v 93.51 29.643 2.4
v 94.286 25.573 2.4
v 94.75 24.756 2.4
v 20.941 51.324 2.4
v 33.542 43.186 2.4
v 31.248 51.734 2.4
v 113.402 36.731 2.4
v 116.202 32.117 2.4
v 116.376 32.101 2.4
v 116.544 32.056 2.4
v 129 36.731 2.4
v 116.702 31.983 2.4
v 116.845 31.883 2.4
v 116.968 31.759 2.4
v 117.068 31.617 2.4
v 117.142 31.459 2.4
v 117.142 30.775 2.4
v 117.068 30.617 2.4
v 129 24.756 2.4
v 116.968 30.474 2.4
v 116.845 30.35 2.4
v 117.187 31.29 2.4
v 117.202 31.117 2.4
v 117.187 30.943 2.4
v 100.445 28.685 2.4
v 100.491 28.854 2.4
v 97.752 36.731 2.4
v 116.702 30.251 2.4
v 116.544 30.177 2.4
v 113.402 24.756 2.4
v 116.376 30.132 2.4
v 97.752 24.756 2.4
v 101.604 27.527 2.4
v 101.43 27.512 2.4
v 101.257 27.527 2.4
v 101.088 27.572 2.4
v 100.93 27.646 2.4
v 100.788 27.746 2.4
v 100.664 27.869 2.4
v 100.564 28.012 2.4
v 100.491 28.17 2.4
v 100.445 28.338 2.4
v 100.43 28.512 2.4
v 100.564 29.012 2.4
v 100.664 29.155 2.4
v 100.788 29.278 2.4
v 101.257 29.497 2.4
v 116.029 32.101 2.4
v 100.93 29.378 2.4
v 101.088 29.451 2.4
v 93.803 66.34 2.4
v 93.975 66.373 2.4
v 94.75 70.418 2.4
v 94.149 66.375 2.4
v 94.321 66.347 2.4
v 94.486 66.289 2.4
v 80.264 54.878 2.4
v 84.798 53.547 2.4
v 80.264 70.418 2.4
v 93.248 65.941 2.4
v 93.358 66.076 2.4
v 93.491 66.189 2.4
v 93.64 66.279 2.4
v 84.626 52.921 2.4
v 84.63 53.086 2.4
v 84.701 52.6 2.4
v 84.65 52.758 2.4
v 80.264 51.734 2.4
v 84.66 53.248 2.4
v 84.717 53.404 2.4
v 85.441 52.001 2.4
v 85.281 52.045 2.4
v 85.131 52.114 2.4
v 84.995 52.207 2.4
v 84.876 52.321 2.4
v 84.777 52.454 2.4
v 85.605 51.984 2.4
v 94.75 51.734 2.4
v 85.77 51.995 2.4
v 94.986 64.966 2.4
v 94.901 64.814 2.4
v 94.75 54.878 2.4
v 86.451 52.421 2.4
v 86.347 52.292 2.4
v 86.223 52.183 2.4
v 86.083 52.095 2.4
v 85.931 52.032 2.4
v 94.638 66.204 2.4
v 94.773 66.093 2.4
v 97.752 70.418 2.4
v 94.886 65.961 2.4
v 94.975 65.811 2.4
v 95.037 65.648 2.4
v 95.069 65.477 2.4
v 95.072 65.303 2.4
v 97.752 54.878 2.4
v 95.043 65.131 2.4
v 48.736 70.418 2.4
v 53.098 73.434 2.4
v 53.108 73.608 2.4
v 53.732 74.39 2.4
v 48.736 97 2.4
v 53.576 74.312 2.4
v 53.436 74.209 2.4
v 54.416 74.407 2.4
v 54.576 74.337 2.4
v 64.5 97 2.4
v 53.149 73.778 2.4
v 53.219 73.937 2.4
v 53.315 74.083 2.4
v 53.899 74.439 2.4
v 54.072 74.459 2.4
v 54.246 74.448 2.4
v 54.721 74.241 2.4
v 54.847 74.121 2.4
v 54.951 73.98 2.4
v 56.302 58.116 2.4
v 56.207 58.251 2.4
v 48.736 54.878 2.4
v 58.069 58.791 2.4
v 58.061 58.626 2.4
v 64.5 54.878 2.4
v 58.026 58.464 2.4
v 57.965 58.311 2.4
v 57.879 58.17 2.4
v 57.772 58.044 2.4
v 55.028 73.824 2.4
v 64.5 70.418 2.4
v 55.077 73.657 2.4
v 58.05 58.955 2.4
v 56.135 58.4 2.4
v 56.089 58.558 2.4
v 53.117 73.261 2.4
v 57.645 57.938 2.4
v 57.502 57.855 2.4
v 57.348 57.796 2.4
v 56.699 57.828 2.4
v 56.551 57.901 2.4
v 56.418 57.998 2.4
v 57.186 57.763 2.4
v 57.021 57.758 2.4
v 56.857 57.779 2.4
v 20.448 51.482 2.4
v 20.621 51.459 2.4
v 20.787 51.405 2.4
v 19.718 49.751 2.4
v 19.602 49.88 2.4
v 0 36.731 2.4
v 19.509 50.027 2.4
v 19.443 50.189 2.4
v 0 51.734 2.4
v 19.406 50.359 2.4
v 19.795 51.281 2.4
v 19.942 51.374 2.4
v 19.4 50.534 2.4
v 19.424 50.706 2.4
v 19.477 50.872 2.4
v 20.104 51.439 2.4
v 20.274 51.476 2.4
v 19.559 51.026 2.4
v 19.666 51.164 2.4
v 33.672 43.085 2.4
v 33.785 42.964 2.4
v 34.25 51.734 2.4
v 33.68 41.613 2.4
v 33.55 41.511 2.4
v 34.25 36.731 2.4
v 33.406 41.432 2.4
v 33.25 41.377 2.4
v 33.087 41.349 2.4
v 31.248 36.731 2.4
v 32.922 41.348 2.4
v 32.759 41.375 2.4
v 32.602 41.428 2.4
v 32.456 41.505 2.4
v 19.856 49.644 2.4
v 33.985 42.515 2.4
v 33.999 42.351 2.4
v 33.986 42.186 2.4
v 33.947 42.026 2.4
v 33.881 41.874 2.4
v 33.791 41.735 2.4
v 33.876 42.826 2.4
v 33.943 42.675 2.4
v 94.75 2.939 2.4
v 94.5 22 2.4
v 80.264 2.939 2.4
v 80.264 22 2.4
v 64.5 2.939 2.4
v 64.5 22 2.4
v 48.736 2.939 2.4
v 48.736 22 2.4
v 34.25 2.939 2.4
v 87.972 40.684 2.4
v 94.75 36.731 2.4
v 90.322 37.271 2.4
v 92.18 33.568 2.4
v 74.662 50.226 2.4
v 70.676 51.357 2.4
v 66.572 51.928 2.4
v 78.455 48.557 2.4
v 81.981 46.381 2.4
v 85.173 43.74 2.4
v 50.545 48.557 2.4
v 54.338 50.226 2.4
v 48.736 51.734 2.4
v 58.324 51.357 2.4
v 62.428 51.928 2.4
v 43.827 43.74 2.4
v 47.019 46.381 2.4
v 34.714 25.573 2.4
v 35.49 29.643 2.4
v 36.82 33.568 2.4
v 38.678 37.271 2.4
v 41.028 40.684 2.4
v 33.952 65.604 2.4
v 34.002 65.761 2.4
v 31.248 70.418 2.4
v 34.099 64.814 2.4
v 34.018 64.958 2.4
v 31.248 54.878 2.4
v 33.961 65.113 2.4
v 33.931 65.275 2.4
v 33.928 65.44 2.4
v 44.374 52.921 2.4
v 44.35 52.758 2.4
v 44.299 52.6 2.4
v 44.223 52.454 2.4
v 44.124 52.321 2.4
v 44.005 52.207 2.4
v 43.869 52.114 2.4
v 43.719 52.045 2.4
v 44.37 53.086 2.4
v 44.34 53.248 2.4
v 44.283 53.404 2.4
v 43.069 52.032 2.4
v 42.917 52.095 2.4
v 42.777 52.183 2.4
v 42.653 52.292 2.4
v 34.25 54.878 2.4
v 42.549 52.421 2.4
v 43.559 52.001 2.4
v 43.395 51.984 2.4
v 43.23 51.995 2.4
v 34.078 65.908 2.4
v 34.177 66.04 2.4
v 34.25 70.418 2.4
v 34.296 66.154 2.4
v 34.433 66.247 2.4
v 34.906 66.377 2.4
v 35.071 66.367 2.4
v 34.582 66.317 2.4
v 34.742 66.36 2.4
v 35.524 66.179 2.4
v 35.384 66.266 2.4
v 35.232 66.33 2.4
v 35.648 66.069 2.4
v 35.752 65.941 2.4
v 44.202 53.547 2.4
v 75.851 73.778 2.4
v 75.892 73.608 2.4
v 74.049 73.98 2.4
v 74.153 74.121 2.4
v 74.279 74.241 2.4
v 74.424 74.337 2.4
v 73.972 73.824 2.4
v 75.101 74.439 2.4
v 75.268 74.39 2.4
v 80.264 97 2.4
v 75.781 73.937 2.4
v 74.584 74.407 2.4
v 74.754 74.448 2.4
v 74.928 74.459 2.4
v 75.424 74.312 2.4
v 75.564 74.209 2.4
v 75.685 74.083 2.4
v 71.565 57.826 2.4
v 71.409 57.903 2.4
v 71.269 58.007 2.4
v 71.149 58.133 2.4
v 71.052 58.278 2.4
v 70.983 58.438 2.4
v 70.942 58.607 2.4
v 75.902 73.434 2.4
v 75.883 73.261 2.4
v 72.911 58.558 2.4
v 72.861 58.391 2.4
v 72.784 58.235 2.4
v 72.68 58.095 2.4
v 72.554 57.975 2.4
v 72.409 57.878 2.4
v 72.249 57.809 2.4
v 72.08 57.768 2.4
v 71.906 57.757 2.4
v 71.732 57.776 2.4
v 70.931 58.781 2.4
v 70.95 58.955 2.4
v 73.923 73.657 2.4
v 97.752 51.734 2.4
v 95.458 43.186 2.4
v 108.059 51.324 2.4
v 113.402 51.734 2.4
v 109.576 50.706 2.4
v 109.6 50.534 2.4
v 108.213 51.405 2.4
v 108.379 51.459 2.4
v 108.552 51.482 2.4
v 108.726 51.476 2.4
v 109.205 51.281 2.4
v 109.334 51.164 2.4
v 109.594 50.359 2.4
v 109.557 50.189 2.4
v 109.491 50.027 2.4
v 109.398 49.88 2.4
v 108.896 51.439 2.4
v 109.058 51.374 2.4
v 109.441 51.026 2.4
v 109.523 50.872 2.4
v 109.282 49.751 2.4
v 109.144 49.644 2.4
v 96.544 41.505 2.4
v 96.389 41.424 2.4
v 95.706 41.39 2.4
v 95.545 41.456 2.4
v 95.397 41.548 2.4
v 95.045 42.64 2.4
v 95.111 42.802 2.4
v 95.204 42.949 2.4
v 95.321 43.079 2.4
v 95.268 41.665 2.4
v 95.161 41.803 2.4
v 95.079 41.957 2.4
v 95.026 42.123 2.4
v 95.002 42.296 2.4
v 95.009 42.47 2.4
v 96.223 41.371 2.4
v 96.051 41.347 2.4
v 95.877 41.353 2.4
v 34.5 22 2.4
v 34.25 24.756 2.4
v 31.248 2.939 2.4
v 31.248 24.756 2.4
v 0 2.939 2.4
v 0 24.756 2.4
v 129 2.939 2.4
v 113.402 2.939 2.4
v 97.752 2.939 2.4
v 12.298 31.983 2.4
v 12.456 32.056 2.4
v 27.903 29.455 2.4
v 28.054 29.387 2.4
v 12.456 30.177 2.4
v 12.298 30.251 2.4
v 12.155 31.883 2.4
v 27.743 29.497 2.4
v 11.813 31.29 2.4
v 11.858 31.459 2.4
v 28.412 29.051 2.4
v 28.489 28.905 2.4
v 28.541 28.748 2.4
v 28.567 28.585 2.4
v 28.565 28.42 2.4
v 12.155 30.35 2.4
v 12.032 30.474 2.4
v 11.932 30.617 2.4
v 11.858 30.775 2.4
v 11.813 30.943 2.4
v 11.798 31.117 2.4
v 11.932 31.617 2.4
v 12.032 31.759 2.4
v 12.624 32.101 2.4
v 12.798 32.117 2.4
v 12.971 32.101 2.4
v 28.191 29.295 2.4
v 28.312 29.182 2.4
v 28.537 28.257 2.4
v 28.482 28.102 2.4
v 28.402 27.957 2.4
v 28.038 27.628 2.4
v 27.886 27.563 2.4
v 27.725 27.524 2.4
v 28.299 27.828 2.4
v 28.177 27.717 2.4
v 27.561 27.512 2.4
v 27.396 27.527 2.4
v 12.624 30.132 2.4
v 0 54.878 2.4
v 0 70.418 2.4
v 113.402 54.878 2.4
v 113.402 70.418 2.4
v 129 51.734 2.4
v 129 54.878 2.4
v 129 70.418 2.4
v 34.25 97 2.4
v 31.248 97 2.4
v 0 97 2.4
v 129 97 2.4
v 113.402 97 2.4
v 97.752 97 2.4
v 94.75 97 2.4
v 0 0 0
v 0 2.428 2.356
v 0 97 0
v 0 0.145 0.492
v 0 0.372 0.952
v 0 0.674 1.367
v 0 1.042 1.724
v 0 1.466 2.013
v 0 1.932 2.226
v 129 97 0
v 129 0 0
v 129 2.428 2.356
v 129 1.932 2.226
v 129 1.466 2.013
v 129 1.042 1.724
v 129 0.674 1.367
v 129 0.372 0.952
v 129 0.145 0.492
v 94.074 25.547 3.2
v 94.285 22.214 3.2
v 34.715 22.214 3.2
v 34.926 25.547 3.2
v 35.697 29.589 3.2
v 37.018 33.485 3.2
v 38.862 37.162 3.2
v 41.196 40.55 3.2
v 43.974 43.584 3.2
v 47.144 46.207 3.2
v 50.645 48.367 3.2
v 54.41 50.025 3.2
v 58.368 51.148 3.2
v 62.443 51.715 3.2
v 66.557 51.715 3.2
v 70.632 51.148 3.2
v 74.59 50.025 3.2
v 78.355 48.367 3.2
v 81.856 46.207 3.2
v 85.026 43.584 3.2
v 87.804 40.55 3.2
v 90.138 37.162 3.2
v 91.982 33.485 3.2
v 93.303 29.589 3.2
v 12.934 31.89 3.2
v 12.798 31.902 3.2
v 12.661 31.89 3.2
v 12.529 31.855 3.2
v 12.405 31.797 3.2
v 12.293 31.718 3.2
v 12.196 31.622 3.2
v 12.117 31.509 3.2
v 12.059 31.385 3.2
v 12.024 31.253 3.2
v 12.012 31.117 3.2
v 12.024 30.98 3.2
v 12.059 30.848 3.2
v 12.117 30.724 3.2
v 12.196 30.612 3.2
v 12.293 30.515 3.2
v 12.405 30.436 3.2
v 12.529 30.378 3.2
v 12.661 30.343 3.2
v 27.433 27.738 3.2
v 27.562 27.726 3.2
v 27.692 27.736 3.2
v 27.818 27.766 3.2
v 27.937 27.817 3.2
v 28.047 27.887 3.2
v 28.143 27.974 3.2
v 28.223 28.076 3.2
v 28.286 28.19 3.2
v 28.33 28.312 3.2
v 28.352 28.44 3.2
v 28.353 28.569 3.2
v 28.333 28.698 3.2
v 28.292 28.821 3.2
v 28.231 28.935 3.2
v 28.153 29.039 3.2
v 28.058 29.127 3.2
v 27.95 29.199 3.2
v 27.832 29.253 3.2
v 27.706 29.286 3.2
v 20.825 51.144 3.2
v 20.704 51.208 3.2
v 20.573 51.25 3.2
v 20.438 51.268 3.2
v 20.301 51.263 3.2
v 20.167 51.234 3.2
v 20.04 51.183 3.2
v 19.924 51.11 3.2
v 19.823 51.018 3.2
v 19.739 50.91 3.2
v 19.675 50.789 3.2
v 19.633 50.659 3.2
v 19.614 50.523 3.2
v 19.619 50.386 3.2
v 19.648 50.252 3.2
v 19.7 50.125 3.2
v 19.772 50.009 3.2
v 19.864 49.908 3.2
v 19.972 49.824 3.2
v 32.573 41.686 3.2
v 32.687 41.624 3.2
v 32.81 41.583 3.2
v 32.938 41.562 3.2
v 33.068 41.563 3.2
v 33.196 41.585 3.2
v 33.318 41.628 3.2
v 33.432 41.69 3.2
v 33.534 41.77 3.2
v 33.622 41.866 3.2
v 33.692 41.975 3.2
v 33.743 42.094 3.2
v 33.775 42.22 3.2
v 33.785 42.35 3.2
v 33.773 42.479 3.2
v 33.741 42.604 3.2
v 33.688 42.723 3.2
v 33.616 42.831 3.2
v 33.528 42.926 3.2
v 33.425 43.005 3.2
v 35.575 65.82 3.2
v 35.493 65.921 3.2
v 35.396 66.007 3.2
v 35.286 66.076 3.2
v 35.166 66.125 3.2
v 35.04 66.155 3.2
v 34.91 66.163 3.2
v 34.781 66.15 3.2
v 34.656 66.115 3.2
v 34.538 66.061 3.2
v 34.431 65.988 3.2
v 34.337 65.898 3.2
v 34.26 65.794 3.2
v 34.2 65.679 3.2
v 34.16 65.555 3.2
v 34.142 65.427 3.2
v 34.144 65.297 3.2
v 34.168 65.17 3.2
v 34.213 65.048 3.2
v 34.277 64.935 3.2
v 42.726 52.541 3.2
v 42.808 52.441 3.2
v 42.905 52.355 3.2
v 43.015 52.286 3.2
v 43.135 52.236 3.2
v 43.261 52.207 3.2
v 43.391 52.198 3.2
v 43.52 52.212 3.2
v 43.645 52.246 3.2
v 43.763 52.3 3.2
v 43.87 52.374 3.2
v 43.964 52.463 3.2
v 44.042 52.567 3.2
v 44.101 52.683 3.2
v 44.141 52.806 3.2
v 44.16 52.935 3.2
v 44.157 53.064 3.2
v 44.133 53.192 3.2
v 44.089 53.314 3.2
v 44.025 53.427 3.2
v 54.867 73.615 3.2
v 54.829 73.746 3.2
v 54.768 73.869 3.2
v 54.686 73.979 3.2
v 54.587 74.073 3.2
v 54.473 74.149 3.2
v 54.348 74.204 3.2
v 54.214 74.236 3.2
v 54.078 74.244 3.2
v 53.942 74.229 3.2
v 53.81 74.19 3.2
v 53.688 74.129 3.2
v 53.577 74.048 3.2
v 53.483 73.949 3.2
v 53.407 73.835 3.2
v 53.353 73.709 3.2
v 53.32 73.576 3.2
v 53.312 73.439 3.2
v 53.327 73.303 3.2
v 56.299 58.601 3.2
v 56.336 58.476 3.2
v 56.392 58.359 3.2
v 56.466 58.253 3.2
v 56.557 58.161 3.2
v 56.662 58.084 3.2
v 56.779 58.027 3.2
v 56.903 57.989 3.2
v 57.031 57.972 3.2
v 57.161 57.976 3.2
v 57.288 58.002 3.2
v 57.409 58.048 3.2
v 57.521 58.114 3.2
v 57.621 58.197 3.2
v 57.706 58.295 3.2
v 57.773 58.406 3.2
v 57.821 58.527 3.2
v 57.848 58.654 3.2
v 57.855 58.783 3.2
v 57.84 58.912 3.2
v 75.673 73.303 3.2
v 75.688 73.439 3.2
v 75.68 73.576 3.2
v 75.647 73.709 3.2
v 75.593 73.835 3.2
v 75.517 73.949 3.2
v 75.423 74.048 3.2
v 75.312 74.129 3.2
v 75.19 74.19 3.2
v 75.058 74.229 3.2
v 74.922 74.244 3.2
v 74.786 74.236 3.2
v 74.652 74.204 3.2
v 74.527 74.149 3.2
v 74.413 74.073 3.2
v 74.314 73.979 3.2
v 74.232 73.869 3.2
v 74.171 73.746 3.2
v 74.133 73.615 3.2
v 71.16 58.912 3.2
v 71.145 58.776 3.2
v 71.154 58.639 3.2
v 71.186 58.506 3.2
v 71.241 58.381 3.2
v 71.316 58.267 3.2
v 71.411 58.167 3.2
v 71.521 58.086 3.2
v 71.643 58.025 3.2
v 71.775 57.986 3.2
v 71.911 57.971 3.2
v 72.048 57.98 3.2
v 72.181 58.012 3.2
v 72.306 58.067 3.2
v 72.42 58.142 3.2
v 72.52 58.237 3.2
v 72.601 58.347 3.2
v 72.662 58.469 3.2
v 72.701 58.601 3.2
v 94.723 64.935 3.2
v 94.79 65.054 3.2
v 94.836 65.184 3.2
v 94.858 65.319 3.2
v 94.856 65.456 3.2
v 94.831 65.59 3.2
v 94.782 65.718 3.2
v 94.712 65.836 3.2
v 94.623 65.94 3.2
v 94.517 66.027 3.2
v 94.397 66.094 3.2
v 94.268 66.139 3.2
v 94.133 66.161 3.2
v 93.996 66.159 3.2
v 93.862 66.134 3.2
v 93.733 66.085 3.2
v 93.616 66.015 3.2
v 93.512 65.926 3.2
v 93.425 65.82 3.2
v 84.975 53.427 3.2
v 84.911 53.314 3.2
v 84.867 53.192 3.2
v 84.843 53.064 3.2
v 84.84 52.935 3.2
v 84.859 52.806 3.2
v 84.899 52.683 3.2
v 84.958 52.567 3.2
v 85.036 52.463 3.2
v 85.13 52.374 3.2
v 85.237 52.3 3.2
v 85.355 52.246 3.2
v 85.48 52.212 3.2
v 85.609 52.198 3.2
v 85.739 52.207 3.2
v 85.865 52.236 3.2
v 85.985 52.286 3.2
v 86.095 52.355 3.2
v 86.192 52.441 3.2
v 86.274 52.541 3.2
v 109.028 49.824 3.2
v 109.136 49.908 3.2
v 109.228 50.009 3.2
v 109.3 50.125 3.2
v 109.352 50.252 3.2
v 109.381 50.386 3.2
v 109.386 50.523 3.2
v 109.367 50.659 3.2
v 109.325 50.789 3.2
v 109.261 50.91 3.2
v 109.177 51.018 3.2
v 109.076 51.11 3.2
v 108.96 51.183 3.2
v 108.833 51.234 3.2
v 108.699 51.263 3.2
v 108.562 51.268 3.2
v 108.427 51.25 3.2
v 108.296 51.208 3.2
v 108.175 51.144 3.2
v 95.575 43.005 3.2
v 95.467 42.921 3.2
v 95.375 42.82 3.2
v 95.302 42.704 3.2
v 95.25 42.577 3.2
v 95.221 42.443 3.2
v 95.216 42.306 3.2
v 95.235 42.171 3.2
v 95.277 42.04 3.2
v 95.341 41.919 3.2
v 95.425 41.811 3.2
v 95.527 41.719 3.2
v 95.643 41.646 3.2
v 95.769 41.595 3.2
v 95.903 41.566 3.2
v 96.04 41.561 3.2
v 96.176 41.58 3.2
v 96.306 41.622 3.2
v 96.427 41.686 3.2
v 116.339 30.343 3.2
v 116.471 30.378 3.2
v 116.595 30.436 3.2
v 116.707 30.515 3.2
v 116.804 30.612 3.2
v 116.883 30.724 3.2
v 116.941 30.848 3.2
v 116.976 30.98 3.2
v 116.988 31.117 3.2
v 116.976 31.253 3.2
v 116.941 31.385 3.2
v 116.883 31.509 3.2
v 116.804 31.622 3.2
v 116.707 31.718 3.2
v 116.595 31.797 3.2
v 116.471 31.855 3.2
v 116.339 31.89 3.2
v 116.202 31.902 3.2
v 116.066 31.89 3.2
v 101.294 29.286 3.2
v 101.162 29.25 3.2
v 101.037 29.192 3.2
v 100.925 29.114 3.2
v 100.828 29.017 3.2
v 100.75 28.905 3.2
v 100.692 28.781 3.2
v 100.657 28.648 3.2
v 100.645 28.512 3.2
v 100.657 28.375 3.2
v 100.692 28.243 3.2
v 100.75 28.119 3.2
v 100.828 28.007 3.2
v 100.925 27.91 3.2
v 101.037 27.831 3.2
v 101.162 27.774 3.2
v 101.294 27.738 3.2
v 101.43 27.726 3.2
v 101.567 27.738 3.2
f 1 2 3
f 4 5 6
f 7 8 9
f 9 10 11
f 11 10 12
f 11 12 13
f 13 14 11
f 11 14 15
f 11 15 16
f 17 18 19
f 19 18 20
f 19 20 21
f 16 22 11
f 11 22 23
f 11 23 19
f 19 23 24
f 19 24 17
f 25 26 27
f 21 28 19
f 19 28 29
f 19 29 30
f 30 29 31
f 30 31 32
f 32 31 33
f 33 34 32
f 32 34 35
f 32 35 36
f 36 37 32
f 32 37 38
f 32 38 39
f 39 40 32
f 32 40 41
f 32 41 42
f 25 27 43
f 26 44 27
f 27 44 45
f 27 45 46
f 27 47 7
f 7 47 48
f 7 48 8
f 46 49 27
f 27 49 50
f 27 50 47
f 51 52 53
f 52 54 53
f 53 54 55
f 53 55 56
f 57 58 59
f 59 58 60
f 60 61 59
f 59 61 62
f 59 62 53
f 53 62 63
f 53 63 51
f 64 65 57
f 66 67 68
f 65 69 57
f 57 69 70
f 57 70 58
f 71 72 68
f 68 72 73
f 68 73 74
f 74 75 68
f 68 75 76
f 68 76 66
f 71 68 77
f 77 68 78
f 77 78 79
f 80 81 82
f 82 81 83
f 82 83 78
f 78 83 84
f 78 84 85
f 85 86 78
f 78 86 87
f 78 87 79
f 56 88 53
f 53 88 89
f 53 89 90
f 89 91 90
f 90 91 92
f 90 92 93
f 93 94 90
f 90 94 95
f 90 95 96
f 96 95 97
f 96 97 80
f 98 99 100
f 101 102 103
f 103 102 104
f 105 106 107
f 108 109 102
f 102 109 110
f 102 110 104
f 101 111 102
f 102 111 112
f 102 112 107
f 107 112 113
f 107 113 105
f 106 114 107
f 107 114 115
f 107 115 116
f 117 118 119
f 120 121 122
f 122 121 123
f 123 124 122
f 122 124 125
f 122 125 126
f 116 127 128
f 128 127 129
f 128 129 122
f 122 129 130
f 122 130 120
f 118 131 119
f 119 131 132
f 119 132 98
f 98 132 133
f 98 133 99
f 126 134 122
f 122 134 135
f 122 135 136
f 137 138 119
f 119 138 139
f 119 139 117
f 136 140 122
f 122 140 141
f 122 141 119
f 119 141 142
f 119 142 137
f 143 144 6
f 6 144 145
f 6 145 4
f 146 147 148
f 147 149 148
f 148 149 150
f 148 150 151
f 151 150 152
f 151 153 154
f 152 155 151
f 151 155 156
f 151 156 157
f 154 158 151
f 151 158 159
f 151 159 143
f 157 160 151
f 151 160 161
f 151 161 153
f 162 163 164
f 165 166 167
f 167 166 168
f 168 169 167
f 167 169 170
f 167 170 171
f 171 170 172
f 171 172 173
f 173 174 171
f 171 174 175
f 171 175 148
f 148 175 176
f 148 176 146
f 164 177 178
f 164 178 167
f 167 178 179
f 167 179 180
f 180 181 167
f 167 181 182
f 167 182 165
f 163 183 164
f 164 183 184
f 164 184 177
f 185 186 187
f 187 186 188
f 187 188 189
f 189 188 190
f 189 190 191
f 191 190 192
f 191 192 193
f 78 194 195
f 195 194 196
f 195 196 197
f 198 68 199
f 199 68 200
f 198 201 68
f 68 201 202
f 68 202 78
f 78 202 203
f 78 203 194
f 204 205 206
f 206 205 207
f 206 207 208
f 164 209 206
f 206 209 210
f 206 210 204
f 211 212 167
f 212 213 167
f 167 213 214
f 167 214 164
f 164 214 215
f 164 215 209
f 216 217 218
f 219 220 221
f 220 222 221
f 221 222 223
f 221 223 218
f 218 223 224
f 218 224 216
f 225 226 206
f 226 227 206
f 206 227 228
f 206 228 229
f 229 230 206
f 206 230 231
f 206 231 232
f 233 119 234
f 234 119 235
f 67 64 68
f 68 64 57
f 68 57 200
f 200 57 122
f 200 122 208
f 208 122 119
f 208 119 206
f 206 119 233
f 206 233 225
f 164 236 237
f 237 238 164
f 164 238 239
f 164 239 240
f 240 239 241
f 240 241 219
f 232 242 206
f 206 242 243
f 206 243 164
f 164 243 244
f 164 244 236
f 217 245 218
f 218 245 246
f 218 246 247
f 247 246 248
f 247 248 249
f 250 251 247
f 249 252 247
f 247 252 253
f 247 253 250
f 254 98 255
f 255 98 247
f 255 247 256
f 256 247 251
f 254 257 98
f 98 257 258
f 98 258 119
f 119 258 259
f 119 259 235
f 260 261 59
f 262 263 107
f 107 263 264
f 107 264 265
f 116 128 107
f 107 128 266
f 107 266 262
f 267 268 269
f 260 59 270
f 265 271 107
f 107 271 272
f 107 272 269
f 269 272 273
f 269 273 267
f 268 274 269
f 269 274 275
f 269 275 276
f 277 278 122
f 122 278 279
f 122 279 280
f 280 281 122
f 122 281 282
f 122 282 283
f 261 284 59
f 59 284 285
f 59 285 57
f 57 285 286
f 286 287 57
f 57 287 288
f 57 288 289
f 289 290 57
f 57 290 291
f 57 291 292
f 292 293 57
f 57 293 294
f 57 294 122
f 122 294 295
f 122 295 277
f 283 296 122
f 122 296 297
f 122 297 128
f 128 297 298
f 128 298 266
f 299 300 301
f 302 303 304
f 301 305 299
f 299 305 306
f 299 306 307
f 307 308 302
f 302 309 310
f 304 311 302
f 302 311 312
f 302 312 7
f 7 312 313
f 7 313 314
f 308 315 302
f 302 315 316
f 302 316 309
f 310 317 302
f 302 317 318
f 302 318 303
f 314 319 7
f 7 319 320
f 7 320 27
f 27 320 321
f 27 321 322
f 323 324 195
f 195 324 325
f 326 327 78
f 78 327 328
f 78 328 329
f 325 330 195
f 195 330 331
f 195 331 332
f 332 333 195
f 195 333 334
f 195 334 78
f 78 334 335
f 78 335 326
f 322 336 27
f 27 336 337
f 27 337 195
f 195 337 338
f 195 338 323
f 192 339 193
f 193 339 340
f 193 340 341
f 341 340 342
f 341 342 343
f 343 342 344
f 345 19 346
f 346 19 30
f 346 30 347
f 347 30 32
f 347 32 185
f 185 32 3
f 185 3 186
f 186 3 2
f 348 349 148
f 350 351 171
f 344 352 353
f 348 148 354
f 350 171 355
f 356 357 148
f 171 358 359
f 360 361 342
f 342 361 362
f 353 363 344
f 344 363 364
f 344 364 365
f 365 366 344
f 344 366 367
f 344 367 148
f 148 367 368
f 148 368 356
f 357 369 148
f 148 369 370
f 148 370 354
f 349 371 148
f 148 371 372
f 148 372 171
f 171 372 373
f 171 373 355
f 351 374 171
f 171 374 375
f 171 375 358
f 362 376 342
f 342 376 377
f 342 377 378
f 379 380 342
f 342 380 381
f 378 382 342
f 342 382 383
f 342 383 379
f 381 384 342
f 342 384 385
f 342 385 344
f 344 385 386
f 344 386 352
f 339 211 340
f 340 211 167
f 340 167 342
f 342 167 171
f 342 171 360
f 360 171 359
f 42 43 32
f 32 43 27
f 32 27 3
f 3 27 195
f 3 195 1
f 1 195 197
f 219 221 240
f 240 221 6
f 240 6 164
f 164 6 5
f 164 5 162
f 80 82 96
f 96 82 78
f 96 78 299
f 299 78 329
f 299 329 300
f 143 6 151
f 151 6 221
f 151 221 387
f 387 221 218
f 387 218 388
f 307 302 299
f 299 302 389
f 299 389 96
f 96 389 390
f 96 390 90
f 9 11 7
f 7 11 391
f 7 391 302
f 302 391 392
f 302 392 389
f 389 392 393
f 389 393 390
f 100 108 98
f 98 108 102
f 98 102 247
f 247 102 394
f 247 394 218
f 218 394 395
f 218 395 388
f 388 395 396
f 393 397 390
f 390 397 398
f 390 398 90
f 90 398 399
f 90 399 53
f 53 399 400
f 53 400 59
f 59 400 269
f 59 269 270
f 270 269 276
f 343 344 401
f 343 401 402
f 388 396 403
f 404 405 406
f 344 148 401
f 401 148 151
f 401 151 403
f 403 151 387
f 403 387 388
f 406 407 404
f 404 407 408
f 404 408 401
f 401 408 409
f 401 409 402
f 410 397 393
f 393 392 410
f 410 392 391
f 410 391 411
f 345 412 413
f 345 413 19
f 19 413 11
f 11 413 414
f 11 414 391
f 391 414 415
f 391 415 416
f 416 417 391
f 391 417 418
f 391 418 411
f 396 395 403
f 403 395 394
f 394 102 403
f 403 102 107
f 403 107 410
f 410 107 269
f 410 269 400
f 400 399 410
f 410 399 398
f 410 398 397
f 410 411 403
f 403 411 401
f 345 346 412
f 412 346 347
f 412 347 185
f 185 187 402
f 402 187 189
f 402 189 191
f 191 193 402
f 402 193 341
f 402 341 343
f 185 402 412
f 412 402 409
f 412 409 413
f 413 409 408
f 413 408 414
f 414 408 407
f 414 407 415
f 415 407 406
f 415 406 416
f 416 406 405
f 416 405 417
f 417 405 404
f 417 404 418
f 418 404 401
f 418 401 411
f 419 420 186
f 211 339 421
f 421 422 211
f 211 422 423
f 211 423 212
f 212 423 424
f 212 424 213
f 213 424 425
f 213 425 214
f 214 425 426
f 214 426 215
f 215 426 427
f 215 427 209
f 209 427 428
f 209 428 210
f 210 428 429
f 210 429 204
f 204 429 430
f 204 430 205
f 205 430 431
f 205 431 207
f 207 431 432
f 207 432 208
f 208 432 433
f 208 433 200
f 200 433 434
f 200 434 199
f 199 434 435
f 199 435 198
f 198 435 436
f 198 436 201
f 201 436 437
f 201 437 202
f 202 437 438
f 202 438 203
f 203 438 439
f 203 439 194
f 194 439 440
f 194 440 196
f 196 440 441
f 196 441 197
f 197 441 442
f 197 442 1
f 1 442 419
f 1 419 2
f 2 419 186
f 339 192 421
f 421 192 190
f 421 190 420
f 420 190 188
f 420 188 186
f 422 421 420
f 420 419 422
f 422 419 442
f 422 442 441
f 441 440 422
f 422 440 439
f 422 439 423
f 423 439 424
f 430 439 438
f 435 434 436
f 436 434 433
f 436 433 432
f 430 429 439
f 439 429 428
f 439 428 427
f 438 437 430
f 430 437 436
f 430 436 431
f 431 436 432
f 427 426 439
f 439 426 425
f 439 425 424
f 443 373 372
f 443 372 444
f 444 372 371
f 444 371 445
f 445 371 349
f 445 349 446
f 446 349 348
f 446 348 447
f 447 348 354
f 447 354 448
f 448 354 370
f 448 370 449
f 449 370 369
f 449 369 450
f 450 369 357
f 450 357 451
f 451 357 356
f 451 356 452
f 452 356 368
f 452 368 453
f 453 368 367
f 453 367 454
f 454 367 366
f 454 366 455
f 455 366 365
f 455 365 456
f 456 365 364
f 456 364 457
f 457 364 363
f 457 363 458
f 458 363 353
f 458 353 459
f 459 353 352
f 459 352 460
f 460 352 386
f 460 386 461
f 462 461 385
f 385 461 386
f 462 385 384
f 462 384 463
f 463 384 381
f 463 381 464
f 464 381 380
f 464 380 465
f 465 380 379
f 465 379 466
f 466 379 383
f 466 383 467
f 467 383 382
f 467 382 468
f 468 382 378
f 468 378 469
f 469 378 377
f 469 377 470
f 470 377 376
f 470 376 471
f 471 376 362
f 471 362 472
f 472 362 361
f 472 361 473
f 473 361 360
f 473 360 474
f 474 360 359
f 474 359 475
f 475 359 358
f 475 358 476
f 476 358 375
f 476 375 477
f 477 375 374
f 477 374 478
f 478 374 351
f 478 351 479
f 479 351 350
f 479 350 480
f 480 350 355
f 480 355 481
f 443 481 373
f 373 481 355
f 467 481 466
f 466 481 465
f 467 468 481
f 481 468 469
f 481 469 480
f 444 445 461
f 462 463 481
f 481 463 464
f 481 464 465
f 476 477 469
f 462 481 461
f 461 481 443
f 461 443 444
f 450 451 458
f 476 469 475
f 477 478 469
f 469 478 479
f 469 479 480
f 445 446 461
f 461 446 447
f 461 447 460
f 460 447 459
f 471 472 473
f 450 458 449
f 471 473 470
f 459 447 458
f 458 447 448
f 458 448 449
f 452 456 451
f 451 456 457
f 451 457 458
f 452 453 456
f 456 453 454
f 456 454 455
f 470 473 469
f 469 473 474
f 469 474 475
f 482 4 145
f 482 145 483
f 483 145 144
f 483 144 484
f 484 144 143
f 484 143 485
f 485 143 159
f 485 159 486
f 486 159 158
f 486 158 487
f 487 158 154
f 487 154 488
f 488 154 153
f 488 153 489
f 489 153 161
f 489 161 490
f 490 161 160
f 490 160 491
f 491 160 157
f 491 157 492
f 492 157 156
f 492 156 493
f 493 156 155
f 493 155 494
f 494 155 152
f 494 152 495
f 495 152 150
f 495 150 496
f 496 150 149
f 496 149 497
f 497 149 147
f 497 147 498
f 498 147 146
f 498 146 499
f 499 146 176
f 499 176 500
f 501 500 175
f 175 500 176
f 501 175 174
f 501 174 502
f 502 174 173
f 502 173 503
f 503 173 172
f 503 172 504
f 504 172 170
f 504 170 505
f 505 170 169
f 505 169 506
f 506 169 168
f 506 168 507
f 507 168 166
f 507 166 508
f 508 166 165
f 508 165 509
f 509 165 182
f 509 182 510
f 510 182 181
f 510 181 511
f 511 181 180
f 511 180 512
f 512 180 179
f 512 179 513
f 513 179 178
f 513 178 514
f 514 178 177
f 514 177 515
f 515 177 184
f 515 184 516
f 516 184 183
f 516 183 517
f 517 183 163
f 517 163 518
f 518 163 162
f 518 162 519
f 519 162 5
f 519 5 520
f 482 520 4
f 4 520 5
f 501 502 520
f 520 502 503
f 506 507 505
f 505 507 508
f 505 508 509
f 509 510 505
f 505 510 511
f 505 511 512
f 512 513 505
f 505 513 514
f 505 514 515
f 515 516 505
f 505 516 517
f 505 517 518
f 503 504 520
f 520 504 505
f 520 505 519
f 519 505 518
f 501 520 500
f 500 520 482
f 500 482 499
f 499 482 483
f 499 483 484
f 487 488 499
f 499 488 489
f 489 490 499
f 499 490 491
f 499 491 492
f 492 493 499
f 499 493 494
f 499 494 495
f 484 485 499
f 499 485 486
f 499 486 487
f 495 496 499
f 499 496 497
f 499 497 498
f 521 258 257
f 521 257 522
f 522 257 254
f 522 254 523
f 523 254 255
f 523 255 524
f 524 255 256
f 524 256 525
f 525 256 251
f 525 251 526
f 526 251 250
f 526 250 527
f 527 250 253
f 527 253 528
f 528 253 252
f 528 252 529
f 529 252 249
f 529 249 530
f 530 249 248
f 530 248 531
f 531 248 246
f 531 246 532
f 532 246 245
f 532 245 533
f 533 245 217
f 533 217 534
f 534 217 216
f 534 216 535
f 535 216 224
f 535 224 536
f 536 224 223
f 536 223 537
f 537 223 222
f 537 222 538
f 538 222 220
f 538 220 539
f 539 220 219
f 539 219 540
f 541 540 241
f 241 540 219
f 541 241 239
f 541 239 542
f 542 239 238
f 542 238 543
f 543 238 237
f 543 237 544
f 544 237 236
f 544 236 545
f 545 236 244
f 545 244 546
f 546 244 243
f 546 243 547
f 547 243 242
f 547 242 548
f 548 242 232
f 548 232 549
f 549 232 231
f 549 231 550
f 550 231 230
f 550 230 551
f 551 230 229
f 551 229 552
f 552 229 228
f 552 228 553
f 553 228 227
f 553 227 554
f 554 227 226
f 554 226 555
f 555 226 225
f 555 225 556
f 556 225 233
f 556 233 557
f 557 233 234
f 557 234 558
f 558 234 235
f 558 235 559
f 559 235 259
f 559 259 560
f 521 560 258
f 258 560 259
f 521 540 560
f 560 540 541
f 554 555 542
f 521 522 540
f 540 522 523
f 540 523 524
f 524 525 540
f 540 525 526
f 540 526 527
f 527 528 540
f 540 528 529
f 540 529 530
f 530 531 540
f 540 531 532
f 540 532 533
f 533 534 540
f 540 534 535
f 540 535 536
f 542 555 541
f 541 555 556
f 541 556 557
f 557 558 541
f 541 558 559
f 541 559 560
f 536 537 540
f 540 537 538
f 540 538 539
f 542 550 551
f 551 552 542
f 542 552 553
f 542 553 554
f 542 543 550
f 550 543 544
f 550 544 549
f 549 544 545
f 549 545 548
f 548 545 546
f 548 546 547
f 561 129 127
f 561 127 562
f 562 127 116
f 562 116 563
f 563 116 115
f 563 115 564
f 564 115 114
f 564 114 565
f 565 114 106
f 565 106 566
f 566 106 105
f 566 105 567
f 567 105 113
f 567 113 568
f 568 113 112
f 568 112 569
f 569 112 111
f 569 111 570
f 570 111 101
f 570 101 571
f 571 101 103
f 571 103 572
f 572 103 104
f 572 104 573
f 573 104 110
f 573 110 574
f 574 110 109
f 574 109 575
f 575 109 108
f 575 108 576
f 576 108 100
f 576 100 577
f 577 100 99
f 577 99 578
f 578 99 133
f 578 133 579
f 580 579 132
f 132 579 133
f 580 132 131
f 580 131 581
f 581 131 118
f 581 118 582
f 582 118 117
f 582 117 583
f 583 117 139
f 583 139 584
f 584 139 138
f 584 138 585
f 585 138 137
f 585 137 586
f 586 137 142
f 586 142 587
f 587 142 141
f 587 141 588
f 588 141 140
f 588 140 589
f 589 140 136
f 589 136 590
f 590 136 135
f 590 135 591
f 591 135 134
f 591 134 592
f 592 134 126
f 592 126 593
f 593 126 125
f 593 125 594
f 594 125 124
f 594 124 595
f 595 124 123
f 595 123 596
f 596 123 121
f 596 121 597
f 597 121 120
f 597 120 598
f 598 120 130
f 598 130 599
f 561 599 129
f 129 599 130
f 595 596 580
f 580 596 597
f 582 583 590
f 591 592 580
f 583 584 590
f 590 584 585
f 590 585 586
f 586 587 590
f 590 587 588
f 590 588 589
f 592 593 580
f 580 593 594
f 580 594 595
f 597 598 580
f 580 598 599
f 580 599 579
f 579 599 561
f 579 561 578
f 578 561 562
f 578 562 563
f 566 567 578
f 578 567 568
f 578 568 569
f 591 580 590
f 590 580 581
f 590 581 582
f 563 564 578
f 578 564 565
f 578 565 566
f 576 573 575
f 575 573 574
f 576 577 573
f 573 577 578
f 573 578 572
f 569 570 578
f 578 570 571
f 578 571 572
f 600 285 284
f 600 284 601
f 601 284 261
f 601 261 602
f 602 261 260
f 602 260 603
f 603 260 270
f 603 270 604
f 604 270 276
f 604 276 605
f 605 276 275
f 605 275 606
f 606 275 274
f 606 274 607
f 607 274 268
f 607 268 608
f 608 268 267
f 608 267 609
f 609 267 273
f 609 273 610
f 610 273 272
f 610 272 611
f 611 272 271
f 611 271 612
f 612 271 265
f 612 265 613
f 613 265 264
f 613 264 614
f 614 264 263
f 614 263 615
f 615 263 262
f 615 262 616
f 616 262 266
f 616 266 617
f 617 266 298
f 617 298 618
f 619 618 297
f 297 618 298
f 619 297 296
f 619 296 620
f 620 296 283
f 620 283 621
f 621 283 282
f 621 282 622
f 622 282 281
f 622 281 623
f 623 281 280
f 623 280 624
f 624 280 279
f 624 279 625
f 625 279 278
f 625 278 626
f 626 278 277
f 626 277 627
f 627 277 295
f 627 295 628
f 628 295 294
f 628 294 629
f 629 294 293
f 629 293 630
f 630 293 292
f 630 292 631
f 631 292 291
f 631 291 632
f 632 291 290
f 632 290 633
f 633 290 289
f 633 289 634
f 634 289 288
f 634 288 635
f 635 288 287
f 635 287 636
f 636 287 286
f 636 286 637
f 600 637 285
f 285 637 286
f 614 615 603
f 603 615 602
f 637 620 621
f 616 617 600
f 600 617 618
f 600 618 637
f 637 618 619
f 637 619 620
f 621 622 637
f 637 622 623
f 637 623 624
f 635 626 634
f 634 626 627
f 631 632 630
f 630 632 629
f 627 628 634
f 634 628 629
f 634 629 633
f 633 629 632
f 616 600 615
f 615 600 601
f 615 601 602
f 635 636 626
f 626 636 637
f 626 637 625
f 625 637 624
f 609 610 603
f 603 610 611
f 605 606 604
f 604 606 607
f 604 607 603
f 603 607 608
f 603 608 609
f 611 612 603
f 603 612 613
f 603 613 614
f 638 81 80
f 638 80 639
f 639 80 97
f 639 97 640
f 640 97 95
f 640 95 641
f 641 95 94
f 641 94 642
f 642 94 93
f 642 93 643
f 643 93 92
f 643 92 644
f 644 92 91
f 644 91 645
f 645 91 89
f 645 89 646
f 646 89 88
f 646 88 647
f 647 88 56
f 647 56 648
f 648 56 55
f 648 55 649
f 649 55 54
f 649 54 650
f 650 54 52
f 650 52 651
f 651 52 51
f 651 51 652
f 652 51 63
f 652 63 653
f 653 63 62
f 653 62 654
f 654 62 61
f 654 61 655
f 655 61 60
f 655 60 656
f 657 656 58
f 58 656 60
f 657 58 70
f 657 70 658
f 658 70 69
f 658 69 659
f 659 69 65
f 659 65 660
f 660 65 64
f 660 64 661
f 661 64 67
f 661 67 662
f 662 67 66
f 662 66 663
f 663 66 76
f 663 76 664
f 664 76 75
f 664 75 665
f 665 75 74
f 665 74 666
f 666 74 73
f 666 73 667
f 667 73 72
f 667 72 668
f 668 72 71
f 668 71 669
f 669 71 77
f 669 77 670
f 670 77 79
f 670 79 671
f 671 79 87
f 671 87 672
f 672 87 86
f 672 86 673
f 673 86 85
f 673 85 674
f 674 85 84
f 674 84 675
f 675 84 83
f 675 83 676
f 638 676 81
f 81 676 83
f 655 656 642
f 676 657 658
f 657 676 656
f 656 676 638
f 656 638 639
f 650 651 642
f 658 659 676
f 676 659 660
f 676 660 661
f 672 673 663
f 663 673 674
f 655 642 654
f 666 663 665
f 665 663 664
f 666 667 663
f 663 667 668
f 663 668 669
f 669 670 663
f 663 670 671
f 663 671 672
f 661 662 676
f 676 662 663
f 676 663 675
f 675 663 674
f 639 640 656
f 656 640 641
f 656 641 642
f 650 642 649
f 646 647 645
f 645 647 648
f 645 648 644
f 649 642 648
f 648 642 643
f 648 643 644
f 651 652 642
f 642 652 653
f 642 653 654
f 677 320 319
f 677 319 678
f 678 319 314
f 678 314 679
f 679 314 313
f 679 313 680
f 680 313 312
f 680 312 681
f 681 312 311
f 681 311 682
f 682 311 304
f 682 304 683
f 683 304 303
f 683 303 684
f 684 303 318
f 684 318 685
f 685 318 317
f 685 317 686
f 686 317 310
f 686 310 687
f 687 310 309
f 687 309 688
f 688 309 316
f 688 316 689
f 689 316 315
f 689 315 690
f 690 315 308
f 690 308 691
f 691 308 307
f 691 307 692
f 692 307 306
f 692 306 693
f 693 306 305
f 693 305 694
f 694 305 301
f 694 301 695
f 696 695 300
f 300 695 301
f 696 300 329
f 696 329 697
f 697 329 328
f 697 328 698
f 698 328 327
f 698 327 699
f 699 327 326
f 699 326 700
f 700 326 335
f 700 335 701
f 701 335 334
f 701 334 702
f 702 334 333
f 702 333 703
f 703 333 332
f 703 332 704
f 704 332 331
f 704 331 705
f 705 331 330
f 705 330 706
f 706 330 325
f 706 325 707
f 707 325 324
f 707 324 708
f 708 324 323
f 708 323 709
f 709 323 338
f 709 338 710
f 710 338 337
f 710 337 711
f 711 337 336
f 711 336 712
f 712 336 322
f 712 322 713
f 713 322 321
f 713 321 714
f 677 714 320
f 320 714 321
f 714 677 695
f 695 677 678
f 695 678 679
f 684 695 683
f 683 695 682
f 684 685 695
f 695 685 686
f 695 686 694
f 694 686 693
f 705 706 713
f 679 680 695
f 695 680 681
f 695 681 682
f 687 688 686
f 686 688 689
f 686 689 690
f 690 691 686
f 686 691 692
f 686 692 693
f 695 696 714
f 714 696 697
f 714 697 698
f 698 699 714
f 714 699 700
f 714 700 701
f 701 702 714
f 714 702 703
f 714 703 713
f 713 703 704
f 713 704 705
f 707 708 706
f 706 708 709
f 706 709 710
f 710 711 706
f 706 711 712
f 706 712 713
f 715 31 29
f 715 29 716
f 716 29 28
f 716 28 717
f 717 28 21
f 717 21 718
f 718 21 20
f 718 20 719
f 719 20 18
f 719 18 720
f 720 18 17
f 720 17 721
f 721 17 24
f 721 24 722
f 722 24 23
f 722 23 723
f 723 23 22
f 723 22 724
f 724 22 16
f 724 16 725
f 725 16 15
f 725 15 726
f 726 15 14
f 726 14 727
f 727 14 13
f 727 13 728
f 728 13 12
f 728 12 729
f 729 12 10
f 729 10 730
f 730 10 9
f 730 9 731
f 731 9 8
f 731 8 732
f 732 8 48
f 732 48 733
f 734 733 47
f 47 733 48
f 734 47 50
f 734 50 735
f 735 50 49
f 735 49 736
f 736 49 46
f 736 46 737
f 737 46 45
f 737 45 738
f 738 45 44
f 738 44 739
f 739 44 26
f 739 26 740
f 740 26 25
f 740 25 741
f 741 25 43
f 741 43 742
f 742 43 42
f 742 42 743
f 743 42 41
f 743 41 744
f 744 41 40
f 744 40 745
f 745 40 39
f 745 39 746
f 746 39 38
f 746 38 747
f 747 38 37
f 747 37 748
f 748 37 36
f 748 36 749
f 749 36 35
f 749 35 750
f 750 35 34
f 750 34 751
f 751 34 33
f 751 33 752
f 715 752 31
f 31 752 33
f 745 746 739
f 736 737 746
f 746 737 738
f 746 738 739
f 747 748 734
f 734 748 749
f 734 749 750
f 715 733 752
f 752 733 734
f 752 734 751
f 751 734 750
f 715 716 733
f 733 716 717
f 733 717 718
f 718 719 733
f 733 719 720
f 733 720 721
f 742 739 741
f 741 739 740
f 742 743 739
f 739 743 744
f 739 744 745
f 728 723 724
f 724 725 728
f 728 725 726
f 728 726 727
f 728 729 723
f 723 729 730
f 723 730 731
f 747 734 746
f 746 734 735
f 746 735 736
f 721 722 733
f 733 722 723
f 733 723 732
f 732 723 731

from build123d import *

# Parameters (mm, degrees)
SKETCH1_W                     = 129
SKETCH1_H                     = 97
BOSS_EXTRUDE1_DEPTH           = 2.4
FILLET1_R                     = 3
BOSS_EXTRUDE2_DEPTH           = 0.8
BOSS_EXTRUDE2_DRAFT           = 15
BOSS_EXTRUDE2_PROFILE_2_DEPTH = 0.8
BOSS_EXTRUDE2_PROFILE_2_DRAFT = 15
BOSS_EXTRUDE2_PROFILE_3_DEPTH = 0.8
BOSS_EXTRUDE2_PROFILE_3_DRAFT = 15
BOSS_EXTRUDE2_PROFILE_4_DEPTH = 0.8
BOSS_EXTRUDE2_PROFILE_4_DRAFT = 15
BOSS_EXTRUDE2_PROFILE_5_DEPTH = 0.8
BOSS_EXTRUDE2_PROFILE_5_DRAFT = 15
BOSS_EXTRUDE2_PROFILE_6_DEPTH = 0.8
BOSS_EXTRUDE2_PROFILE_6_DRAFT = 15
BOSS_EXTRUDE2_PROFILE_7_DEPTH = 0.8
BOSS_EXTRUDE2_PROFILE_7_DRAFT = 15
BOSS_EXTRUDE2_PROFILE_8_DEPTH = 0.8
BOSS_EXTRUDE2_PROFILE_8_DRAFT = 15
BOSS_EXTRUDE2_PROFILE_9_DEPTH = 0.8
BOSS_EXTRUDE2_PROFILE_9_DRAFT = 15


with BuildPart() as part:
    # Sketch1 → Boss-Extrude1 (new body)
    with BuildSketch(Plane.XY):
        with Locations((64.5, 48.5)):
            Rectangle(SKETCH1_W, SKETCH1_H)
    extrude(amount=BOSS_EXTRUDE1_DEPTH)

    # Fillet1
    # the kernel refuses this fillet: 3 mm, written as the material it takes off along each edge
    with BuildSketch(Plane(origin=(-7.348469228, 0, 2.4), x_dir=(0, 1.5674498735994488e-12, -1.0), z_dir=(1, 0, 0))) as fillet1_piece_1:
        with BuildLine():
            CenterArc((3, 2.939387691), FILLET1_R, 180, 78.463040967)
            Line((0, 2.939387691), (-0.06, 2.939387691))
            Line((-0.06, 2.939387691), (-0.06, 0))
            Line((-0.06, 0), (0, -0.06))
            ThreePointArc((0, -0.06), (1.2, -0.06), (2.388, -0.058787754))
            Line((2.388, -0.058787754), (2.4, 0))
        make_face()
    extrude(amount=143.696938457, mode=Mode.SUBTRACT)


with BuildPart() as boss_extrude2_tool:
    # Sketch2 → Boss-Extrude2 (with draft: the straight prism first)
    with BuildSketch(Plane.XY.offset(2.4)):
        with BuildLine():
            Line((34.5, 22), (94.5, 22))
            ThreePointArc((94.5, 22), (64.5, 52), (34.5, 22))
        make_face()
    extrude(amount=BOSS_EXTRUDE2_DEPTH)
    # Boss-Extrude2: the draft: its side faces are tilted about the plane it starts from
    boss_extrude2_sides = [boss_extrude2_tool.faces().sort_by_distance(p)[0] for p in [
        (64.5, 22, 2.8),
        (64.5, 52, 2.8),
    ]]
    draft(boss_extrude2_sides, Plane.XY.offset(2.4), BOSS_EXTRUDE2_DRAFT)


with BuildPart() as part_1:
    add(part.part)

    # Boss-Extrude2: add boss_extrude2_tool
    add(boss_extrude2_tool.part)


with BuildPart() as boss_extrude2_profile_2_tool:
    # Sketch2 → Boss-Extrude2 profile 2 (with draft: the straight prism first)
    with BuildSketch(Plane.XY.offset(2.4)):
        with BuildLine():
            ThreePointArc((12.971241145, 32.101337081), (11.812785214, 31.290177505), (12.623944789, 30.131721575))
            Line((12.623944789, 30.131721575), (27.396061084, 27.526998909))
            ThreePointArc((27.396061084, 27.526998909), (28.554517015, 28.338158485), (27.74335744, 29.496614416))
            Line((27.74335744, 29.496614416), (12.971241145, 32.101337081))
        make_face()
    extrude(amount=BOSS_EXTRUDE2_PROFILE_2_DEPTH)
    # Boss-Extrude2 profile 2: the draft: its side faces are tilted about the plane it starts from
    boss_extrude2_profile_2_sides = [boss_extrude2_profile_2_tool.faces().sort_by_distance(p)[0] for p in [
        (11.812785214, 31.290177505, 2.8),
        (20.010002937, 28.829360242, 2.8),
        (28.554517015, 28.338158485, 2.8),
        (20.357299292, 30.798975748, 2.8),
    ]]
    draft(boss_extrude2_profile_2_sides, Plane.XY.offset(2.4), BOSS_EXTRUDE2_PROFILE_2_DRAFT)


with BuildPart() as part_2:
    add(part_1.part)

    # Boss-Extrude2 profile 2: add boss_extrude2_profile_2_tool
    add(boss_extrude2_profile_2_tool.part)


with BuildPart() as boss_extrude2_profile_3_tool:
    # Sketch2 → Boss-Extrude2 profile 3 (with draft: the straight prism first)
    with BuildSketch(Plane.XY.offset(2.4)):
        with BuildLine():
            ThreePointArc((20.941185298, 51.323704776), (19.558613111, 51.026225117), (19.856092771, 49.64365293))
            Line((19.856092771, 49.64365293), (32.456481618, 41.505458972))
            ThreePointArc((32.456481618, 41.505458972), (33.839053805, 41.802938631), (33.541574146, 43.185510818))
            Line((33.541574146, 43.185510818), (20.941185298, 51.323704776))
        make_face()
    extrude(amount=BOSS_EXTRUDE2_PROFILE_3_DEPTH)
    # Boss-Extrude2 profile 3: the draft: its side faces are tilted about the plane it starts from
    boss_extrude2_profile_3_sides = [boss_extrude2_profile_3_tool.faces().sort_by_distance(p)[0] for p in [
        (33.839053805, 41.802938631, 2.8),
        (27.241379722, 47.254607797, 2.8),
        (19.558613111, 51.026225117, 2.8),
        (26.156287194, 45.574555951, 2.8),
    ]]
    draft(boss_extrude2_profile_3_sides, Plane.XY.offset(2.4), BOSS_EXTRUDE2_PROFILE_3_DRAFT)


with BuildPart() as part_3:
    add(part_2.part)

    # Boss-Extrude2 profile 3: add boss_extrude2_profile_3_tool
    add(boss_extrude2_profile_3_tool.part)


with BuildPart() as boss_extrude2_profile_4_tool:
    # Sketch2 → Boss-Extrude2 profile 4 (with draft: the straight prism first)
    with BuildSketch(Plane.XY.offset(2.4)):
        with BuildLine():
            ThreePointArc((35.751935726, 65.94085571), (34.362376894, 66.203774426), (34.099458177, 64.814215594))
            Line((34.099458177, 64.814215594), (42.549259048, 52.420633979))
            ThreePointArc((42.549259048, 52.420633979), (43.938817881, 52.157715263), (44.201736597, 53.547274095))
            Line((44.201736597, 53.547274095), (35.751935726, 65.94085571))
        make_face()
    extrude(amount=BOSS_EXTRUDE2_PROFILE_4_DEPTH)
    # Boss-Extrude2 profile 4: the draft: its side faces are tilted about the plane it starts from
    boss_extrude2_profile_4_sides = [boss_extrude2_profile_4_tool.faces().sort_by_distance(p)[0] for p in [
        (38.324358613, 58.617424786, 2.8),
        (43.938817881, 52.157715263, 2.8),
        (39.976836161, 59.744064902, 2.8),
        (34.362376894, 66.203774426, 2.8),
    ]]
    draft(boss_extrude2_profile_4_sides, Plane.XY.offset(2.4), BOSS_EXTRUDE2_PROFILE_4_DRAFT)


with BuildPart() as part_4:
    add(part_3.part)

    # Boss-Extrude2 profile 4: add boss_extrude2_profile_4_tool
    add(boss_extrude2_profile_4_tool.part)


with BuildPart() as boss_extrude2_profile_5_tool:
    # Sketch2 → Boss-Extrude2 profile 5 (with draft: the straight prism first)
    with BuildSketch(Plane.XY.offset(2.4)):
        with BuildLine():
            ThreePointArc((55.07749997, 73.657201755), (53.899181339, 74.4392281), (53.117154994, 73.260909469))
            Line((53.117154994, 73.260909469), (56.089347142, 58.558322151))
            ThreePointArc((56.089347142, 58.558322151), (57.267665773, 57.776295806), (58.049692118, 58.954614438))
            Line((58.049692118, 58.954614438), (55.07749997, 73.657201755))
        make_face()
    extrude(amount=BOSS_EXTRUDE2_PROFILE_5_DEPTH)
    # Boss-Extrude2 profile 5: the draft: its side faces are tilted about the plane it starts from
    boss_extrude2_profile_5_sides = [boss_extrude2_profile_5_tool.faces().sort_by_distance(p)[0] for p in [
        (53.899181339, 74.4392281, 2.8),
        (54.603251068, 65.90961581, 2.8),
        (57.267665773, 57.776295806, 2.8),
        (56.563596044, 66.305908096, 2.8),
    ]]
    draft(boss_extrude2_profile_5_sides, Plane.XY.offset(2.4), BOSS_EXTRUDE2_PROFILE_5_DRAFT)


with BuildPart() as part_5:
    add(part_4.part)

    # Boss-Extrude2 profile 5: add boss_extrude2_profile_5_tool
    add(boss_extrude2_profile_5_tool.part)


with BuildPart() as boss_extrude2_profile_6_tool:
    # Sketch2 → Boss-Extrude2 profile 6 (with draft: the straight prism first)
    with BuildSketch(Plane.XY.offset(2.4)):
        with BuildLine():
            ThreePointArc((75.882845006, 73.260909469), (75.100818661, 74.4392281), (73.92250003, 73.657201755))
            Line((73.92250003, 73.657201755), (70.950307882, 58.954614438))
            ThreePointArc((70.950307882, 58.954614438), (71.732334227, 57.776295806), (72.910652858, 58.558322151))
            Line((72.910652858, 58.558322151), (75.882845006, 73.260909469))
        make_face()
    extrude(amount=BOSS_EXTRUDE2_PROFILE_6_DEPTH)
    # Boss-Extrude2 profile 6: the draft: its side faces are tilted about the plane it starts from
    boss_extrude2_profile_6_sides = [boss_extrude2_profile_6_tool.faces().sort_by_distance(p)[0] for p in [
        (75.100818661, 74.4392281, 2.8),
        (72.436403956, 66.305908096, 2.8),
        (71.732334227, 57.776295806, 2.8),
        (74.396748932, 65.90961581, 2.8),
    ]]
    draft(boss_extrude2_profile_6_sides, Plane.XY.offset(2.4), BOSS_EXTRUDE2_PROFILE_6_DRAFT)


with BuildPart() as part_6:
    add(part_5.part)

    # Boss-Extrude2 profile 6: add boss_extrude2_profile_6_tool
    add(boss_extrude2_profile_6_tool.part)


with BuildPart() as boss_extrude2_profile_7_tool:
    # Sketch2 → Boss-Extrude2 profile 7 (with draft: the straight prism first)
    with BuildSketch(Plane.XY.offset(2.4)):
        with BuildLine():
            ThreePointArc((94.900541823, 64.814215594), (94.637623106, 66.203774426), (93.248064274, 65.94085571))
            Line((93.248064274, 65.94085571), (84.798263403, 53.547274095))
            ThreePointArc((84.798263403, 53.547274095), (85.061182119, 52.157715263), (86.450740952, 52.420633979))
            Line((86.450740952, 52.420633979), (94.900541823, 64.814215594))
        make_face()
    extrude(amount=BOSS_EXTRUDE2_PROFILE_7_DEPTH)
    # Boss-Extrude2 profile 7: the draft: its side faces are tilted about the plane it starts from
    boss_extrude2_profile_7_sides = [boss_extrude2_profile_7_tool.faces().sort_by_distance(p)[0] for p in [
        (94.637623106, 66.203774426, 2.8),
        (89.023163839, 59.744064902, 2.8),
        (85.061182119, 52.157715263, 2.8),
        (90.675641387, 58.617424786, 2.8),
    ]]
    draft(boss_extrude2_profile_7_sides, Plane.XY.offset(2.4), BOSS_EXTRUDE2_PROFILE_7_DRAFT)


with BuildPart() as part_7:
    add(part_6.part)

    # Boss-Extrude2 profile 7: add boss_extrude2_profile_7_tool
    add(boss_extrude2_profile_7_tool.part)


with BuildPart() as boss_extrude2_profile_8_tool:
    # Sketch2 → Boss-Extrude2 profile 8 (with draft: the straight prism first)
    with BuildSketch(Plane.XY.offset(2.4)):
        with BuildLine():
            ThreePointArc((109.143907229, 49.64365293), (109.441386889, 51.026225117), (108.058814702, 51.323704776))
            Line((108.058814702, 51.323704776), (95.458425854, 43.185510818))
            ThreePointArc((95.458425854, 43.185510818), (95.160946195, 41.802938631), (96.543518382, 41.505458972))
            Line((96.543518382, 41.505458972), (109.143907229, 49.64365293))
        make_face()
    extrude(amount=BOSS_EXTRUDE2_PROFILE_8_DEPTH)
    # Boss-Extrude2 profile 8: the draft: its side faces are tilted about the plane it starts from
    boss_extrude2_profile_8_sides = [boss_extrude2_profile_8_tool.faces().sort_by_distance(p)[0] for p in [
        (102.843712806, 45.574555951, 2.8),
        (109.441386889, 51.026225117, 2.8),
        (101.758620278, 47.254607797, 2.8),
        (95.160946195, 41.802938631, 2.8),
    ]]
    draft(boss_extrude2_profile_8_sides, Plane.XY.offset(2.4), BOSS_EXTRUDE2_PROFILE_8_DRAFT)


with BuildPart() as part_8:
    add(part_7.part)

    # Boss-Extrude2 profile 8: add boss_extrude2_profile_8_tool
    add(boss_extrude2_profile_8_tool.part)


with BuildPart() as boss_extrude2_profile_9_tool:
    # Sketch2 → Boss-Extrude2 profile 9 (with draft: the straight prism first)
    with BuildSketch(Plane.XY.offset(2.4)):
        with BuildLine():
            ThreePointArc((116.376055211, 30.131721575), (117.187214786, 31.290177505), (116.028758855, 32.101337081))
            Line((116.028758855, 32.101337081), (101.25664256, 29.496614416))
            ThreePointArc((101.25664256, 29.496614416), (100.445482985, 28.338158485), (101.603938916, 27.526998909))
            Line((101.603938916, 27.526998909), (116.376055211, 30.131721575))
        make_face()
    extrude(amount=BOSS_EXTRUDE2_PROFILE_9_DEPTH)
    # Boss-Extrude2 profile 9: the draft: its side faces are tilted about the plane it starts from
    boss_extrude2_profile_9_sides = [boss_extrude2_profile_9_tool.faces().sort_by_distance(p)[0] for p in [
        (108.642700708, 30.798975748, 2.8),
        (100.445482985, 28.338158485, 2.8),
        (108.989997063, 28.829360242, 2.8),
        (117.187214786, 31.290177505, 2.8),
    ]]
    draft(boss_extrude2_profile_9_sides, Plane.XY.offset(2.4), BOSS_EXTRUDE2_PROFILE_9_DRAFT)


with BuildPart() as part_9:
    add(part_8.part)

    # Boss-Extrude2 profile 9: add boss_extrude2_profile_9_tool
    add(boss_extrude2_profile_9_tool.part)


solid = part_9.part
